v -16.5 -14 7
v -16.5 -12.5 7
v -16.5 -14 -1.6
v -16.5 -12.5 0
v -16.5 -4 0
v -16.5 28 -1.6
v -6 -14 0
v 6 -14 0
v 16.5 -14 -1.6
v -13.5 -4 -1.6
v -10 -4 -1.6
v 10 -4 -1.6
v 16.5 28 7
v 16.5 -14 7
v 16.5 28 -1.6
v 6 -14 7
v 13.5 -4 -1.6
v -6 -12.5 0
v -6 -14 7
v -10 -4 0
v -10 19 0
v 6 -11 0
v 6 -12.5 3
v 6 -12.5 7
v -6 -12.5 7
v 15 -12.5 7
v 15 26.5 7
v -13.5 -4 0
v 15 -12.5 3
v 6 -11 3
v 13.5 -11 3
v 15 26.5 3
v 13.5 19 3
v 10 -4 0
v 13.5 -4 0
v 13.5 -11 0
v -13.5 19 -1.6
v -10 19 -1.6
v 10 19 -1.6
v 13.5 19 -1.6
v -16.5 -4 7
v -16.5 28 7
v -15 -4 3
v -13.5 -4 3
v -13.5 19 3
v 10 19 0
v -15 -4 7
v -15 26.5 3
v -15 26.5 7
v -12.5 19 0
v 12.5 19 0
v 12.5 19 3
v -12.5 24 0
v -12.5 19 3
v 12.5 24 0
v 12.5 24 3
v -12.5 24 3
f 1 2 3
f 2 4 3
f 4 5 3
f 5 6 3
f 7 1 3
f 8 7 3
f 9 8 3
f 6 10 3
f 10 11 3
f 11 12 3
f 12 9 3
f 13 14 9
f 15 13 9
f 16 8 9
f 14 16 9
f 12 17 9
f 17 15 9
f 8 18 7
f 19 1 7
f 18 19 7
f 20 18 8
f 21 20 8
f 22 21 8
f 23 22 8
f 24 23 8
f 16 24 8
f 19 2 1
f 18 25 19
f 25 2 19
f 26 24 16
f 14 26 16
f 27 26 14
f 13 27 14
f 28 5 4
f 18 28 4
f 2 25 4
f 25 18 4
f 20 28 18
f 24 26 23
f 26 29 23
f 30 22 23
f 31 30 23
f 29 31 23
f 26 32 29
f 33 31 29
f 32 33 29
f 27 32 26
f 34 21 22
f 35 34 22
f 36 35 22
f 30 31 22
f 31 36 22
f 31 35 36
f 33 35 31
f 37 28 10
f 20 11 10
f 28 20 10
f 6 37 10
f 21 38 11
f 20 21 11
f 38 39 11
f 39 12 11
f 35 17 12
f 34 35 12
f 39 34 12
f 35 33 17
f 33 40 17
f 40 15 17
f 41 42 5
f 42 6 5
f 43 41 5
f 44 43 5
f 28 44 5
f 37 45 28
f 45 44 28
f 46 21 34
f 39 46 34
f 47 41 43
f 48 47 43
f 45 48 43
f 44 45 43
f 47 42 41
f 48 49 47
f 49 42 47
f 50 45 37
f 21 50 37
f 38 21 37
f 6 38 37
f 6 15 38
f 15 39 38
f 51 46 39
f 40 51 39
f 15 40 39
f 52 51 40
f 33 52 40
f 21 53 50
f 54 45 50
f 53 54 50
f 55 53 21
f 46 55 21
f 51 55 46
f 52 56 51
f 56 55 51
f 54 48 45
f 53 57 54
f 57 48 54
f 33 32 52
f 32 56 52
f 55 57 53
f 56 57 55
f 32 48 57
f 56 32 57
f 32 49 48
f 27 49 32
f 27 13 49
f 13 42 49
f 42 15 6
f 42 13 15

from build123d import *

# Parameters (mm, degrees)
ESBO_O1_W                = 33
ESBO_O1_H                = 42
ESBO_O1_W_2              = 3.5
ESBO_O1_H_2              = 23
RESSALTO_EXTRUS_O5_DEPTH = 1.6
ESBO_O1_4_W              = 10.5
ESBO_O1_4_H              = 1.5
RESSALTO_EXTRUS_O6_DEPTH = 7
RESSALTO_EXTRUS_O7_DEPTH = 3


with BuildPart() as part:
    # Esboço1 → Ressalto-extrusão5 (new body)
    with BuildSketch(Plane.XY):
        with Locations((0, 7)):
            Rectangle(ESBO_O1_W, ESBO_O1_H)
        with Locations((11.75, 7.5)):
            Rectangle(ESBO_O1_W_2, ESBO_O1_H_2, mode=Mode.SUBTRACT)
        with Locations((-11.75, 7.5)):
            Rectangle(ESBO_O1_W_2, ESBO_O1_H_2, mode=Mode.SUBTRACT)
    extrude(amount=-RESSALTO_EXTRUS_O5_DEPTH)

    # Esboço1<4> → Ressalto-extrusão6 (add)
    with BuildSketch(Plane.XY):
        Polygon((-16.5, -4), (-15, -4), (-15, 26.5), (15, 26.5), (15, -12.5), (6, -12.5), (6, -14), (16.5, -14), (16.5, 28), (-16.5, 28), align=None)
        with Locations((-11.25, -13.25)):
            Rectangle(ESBO_O1_4_W, ESBO_O1_4_H)
    extrude(amount=RESSALTO_EXTRUS_O6_DEPTH)

    # Esboço1<5> → Ressalto-extrusão7 (add)
    with BuildSketch(Plane.XY):
        Polygon((12.5, 24), (12.5, 19), (13.5, 19), (13.5, -11), (6, -11), (6, -12.5), (15, -12.5), (15, 26.5), (-15, 26.5), (-15, -4), (-13.5, -4), (-13.5, 19), (-12.5, 19), (-12.5, 24), align=None)
    extrude(amount=RESSALTO_EXTRUS_O7_DEPTH)


solid = part.part
